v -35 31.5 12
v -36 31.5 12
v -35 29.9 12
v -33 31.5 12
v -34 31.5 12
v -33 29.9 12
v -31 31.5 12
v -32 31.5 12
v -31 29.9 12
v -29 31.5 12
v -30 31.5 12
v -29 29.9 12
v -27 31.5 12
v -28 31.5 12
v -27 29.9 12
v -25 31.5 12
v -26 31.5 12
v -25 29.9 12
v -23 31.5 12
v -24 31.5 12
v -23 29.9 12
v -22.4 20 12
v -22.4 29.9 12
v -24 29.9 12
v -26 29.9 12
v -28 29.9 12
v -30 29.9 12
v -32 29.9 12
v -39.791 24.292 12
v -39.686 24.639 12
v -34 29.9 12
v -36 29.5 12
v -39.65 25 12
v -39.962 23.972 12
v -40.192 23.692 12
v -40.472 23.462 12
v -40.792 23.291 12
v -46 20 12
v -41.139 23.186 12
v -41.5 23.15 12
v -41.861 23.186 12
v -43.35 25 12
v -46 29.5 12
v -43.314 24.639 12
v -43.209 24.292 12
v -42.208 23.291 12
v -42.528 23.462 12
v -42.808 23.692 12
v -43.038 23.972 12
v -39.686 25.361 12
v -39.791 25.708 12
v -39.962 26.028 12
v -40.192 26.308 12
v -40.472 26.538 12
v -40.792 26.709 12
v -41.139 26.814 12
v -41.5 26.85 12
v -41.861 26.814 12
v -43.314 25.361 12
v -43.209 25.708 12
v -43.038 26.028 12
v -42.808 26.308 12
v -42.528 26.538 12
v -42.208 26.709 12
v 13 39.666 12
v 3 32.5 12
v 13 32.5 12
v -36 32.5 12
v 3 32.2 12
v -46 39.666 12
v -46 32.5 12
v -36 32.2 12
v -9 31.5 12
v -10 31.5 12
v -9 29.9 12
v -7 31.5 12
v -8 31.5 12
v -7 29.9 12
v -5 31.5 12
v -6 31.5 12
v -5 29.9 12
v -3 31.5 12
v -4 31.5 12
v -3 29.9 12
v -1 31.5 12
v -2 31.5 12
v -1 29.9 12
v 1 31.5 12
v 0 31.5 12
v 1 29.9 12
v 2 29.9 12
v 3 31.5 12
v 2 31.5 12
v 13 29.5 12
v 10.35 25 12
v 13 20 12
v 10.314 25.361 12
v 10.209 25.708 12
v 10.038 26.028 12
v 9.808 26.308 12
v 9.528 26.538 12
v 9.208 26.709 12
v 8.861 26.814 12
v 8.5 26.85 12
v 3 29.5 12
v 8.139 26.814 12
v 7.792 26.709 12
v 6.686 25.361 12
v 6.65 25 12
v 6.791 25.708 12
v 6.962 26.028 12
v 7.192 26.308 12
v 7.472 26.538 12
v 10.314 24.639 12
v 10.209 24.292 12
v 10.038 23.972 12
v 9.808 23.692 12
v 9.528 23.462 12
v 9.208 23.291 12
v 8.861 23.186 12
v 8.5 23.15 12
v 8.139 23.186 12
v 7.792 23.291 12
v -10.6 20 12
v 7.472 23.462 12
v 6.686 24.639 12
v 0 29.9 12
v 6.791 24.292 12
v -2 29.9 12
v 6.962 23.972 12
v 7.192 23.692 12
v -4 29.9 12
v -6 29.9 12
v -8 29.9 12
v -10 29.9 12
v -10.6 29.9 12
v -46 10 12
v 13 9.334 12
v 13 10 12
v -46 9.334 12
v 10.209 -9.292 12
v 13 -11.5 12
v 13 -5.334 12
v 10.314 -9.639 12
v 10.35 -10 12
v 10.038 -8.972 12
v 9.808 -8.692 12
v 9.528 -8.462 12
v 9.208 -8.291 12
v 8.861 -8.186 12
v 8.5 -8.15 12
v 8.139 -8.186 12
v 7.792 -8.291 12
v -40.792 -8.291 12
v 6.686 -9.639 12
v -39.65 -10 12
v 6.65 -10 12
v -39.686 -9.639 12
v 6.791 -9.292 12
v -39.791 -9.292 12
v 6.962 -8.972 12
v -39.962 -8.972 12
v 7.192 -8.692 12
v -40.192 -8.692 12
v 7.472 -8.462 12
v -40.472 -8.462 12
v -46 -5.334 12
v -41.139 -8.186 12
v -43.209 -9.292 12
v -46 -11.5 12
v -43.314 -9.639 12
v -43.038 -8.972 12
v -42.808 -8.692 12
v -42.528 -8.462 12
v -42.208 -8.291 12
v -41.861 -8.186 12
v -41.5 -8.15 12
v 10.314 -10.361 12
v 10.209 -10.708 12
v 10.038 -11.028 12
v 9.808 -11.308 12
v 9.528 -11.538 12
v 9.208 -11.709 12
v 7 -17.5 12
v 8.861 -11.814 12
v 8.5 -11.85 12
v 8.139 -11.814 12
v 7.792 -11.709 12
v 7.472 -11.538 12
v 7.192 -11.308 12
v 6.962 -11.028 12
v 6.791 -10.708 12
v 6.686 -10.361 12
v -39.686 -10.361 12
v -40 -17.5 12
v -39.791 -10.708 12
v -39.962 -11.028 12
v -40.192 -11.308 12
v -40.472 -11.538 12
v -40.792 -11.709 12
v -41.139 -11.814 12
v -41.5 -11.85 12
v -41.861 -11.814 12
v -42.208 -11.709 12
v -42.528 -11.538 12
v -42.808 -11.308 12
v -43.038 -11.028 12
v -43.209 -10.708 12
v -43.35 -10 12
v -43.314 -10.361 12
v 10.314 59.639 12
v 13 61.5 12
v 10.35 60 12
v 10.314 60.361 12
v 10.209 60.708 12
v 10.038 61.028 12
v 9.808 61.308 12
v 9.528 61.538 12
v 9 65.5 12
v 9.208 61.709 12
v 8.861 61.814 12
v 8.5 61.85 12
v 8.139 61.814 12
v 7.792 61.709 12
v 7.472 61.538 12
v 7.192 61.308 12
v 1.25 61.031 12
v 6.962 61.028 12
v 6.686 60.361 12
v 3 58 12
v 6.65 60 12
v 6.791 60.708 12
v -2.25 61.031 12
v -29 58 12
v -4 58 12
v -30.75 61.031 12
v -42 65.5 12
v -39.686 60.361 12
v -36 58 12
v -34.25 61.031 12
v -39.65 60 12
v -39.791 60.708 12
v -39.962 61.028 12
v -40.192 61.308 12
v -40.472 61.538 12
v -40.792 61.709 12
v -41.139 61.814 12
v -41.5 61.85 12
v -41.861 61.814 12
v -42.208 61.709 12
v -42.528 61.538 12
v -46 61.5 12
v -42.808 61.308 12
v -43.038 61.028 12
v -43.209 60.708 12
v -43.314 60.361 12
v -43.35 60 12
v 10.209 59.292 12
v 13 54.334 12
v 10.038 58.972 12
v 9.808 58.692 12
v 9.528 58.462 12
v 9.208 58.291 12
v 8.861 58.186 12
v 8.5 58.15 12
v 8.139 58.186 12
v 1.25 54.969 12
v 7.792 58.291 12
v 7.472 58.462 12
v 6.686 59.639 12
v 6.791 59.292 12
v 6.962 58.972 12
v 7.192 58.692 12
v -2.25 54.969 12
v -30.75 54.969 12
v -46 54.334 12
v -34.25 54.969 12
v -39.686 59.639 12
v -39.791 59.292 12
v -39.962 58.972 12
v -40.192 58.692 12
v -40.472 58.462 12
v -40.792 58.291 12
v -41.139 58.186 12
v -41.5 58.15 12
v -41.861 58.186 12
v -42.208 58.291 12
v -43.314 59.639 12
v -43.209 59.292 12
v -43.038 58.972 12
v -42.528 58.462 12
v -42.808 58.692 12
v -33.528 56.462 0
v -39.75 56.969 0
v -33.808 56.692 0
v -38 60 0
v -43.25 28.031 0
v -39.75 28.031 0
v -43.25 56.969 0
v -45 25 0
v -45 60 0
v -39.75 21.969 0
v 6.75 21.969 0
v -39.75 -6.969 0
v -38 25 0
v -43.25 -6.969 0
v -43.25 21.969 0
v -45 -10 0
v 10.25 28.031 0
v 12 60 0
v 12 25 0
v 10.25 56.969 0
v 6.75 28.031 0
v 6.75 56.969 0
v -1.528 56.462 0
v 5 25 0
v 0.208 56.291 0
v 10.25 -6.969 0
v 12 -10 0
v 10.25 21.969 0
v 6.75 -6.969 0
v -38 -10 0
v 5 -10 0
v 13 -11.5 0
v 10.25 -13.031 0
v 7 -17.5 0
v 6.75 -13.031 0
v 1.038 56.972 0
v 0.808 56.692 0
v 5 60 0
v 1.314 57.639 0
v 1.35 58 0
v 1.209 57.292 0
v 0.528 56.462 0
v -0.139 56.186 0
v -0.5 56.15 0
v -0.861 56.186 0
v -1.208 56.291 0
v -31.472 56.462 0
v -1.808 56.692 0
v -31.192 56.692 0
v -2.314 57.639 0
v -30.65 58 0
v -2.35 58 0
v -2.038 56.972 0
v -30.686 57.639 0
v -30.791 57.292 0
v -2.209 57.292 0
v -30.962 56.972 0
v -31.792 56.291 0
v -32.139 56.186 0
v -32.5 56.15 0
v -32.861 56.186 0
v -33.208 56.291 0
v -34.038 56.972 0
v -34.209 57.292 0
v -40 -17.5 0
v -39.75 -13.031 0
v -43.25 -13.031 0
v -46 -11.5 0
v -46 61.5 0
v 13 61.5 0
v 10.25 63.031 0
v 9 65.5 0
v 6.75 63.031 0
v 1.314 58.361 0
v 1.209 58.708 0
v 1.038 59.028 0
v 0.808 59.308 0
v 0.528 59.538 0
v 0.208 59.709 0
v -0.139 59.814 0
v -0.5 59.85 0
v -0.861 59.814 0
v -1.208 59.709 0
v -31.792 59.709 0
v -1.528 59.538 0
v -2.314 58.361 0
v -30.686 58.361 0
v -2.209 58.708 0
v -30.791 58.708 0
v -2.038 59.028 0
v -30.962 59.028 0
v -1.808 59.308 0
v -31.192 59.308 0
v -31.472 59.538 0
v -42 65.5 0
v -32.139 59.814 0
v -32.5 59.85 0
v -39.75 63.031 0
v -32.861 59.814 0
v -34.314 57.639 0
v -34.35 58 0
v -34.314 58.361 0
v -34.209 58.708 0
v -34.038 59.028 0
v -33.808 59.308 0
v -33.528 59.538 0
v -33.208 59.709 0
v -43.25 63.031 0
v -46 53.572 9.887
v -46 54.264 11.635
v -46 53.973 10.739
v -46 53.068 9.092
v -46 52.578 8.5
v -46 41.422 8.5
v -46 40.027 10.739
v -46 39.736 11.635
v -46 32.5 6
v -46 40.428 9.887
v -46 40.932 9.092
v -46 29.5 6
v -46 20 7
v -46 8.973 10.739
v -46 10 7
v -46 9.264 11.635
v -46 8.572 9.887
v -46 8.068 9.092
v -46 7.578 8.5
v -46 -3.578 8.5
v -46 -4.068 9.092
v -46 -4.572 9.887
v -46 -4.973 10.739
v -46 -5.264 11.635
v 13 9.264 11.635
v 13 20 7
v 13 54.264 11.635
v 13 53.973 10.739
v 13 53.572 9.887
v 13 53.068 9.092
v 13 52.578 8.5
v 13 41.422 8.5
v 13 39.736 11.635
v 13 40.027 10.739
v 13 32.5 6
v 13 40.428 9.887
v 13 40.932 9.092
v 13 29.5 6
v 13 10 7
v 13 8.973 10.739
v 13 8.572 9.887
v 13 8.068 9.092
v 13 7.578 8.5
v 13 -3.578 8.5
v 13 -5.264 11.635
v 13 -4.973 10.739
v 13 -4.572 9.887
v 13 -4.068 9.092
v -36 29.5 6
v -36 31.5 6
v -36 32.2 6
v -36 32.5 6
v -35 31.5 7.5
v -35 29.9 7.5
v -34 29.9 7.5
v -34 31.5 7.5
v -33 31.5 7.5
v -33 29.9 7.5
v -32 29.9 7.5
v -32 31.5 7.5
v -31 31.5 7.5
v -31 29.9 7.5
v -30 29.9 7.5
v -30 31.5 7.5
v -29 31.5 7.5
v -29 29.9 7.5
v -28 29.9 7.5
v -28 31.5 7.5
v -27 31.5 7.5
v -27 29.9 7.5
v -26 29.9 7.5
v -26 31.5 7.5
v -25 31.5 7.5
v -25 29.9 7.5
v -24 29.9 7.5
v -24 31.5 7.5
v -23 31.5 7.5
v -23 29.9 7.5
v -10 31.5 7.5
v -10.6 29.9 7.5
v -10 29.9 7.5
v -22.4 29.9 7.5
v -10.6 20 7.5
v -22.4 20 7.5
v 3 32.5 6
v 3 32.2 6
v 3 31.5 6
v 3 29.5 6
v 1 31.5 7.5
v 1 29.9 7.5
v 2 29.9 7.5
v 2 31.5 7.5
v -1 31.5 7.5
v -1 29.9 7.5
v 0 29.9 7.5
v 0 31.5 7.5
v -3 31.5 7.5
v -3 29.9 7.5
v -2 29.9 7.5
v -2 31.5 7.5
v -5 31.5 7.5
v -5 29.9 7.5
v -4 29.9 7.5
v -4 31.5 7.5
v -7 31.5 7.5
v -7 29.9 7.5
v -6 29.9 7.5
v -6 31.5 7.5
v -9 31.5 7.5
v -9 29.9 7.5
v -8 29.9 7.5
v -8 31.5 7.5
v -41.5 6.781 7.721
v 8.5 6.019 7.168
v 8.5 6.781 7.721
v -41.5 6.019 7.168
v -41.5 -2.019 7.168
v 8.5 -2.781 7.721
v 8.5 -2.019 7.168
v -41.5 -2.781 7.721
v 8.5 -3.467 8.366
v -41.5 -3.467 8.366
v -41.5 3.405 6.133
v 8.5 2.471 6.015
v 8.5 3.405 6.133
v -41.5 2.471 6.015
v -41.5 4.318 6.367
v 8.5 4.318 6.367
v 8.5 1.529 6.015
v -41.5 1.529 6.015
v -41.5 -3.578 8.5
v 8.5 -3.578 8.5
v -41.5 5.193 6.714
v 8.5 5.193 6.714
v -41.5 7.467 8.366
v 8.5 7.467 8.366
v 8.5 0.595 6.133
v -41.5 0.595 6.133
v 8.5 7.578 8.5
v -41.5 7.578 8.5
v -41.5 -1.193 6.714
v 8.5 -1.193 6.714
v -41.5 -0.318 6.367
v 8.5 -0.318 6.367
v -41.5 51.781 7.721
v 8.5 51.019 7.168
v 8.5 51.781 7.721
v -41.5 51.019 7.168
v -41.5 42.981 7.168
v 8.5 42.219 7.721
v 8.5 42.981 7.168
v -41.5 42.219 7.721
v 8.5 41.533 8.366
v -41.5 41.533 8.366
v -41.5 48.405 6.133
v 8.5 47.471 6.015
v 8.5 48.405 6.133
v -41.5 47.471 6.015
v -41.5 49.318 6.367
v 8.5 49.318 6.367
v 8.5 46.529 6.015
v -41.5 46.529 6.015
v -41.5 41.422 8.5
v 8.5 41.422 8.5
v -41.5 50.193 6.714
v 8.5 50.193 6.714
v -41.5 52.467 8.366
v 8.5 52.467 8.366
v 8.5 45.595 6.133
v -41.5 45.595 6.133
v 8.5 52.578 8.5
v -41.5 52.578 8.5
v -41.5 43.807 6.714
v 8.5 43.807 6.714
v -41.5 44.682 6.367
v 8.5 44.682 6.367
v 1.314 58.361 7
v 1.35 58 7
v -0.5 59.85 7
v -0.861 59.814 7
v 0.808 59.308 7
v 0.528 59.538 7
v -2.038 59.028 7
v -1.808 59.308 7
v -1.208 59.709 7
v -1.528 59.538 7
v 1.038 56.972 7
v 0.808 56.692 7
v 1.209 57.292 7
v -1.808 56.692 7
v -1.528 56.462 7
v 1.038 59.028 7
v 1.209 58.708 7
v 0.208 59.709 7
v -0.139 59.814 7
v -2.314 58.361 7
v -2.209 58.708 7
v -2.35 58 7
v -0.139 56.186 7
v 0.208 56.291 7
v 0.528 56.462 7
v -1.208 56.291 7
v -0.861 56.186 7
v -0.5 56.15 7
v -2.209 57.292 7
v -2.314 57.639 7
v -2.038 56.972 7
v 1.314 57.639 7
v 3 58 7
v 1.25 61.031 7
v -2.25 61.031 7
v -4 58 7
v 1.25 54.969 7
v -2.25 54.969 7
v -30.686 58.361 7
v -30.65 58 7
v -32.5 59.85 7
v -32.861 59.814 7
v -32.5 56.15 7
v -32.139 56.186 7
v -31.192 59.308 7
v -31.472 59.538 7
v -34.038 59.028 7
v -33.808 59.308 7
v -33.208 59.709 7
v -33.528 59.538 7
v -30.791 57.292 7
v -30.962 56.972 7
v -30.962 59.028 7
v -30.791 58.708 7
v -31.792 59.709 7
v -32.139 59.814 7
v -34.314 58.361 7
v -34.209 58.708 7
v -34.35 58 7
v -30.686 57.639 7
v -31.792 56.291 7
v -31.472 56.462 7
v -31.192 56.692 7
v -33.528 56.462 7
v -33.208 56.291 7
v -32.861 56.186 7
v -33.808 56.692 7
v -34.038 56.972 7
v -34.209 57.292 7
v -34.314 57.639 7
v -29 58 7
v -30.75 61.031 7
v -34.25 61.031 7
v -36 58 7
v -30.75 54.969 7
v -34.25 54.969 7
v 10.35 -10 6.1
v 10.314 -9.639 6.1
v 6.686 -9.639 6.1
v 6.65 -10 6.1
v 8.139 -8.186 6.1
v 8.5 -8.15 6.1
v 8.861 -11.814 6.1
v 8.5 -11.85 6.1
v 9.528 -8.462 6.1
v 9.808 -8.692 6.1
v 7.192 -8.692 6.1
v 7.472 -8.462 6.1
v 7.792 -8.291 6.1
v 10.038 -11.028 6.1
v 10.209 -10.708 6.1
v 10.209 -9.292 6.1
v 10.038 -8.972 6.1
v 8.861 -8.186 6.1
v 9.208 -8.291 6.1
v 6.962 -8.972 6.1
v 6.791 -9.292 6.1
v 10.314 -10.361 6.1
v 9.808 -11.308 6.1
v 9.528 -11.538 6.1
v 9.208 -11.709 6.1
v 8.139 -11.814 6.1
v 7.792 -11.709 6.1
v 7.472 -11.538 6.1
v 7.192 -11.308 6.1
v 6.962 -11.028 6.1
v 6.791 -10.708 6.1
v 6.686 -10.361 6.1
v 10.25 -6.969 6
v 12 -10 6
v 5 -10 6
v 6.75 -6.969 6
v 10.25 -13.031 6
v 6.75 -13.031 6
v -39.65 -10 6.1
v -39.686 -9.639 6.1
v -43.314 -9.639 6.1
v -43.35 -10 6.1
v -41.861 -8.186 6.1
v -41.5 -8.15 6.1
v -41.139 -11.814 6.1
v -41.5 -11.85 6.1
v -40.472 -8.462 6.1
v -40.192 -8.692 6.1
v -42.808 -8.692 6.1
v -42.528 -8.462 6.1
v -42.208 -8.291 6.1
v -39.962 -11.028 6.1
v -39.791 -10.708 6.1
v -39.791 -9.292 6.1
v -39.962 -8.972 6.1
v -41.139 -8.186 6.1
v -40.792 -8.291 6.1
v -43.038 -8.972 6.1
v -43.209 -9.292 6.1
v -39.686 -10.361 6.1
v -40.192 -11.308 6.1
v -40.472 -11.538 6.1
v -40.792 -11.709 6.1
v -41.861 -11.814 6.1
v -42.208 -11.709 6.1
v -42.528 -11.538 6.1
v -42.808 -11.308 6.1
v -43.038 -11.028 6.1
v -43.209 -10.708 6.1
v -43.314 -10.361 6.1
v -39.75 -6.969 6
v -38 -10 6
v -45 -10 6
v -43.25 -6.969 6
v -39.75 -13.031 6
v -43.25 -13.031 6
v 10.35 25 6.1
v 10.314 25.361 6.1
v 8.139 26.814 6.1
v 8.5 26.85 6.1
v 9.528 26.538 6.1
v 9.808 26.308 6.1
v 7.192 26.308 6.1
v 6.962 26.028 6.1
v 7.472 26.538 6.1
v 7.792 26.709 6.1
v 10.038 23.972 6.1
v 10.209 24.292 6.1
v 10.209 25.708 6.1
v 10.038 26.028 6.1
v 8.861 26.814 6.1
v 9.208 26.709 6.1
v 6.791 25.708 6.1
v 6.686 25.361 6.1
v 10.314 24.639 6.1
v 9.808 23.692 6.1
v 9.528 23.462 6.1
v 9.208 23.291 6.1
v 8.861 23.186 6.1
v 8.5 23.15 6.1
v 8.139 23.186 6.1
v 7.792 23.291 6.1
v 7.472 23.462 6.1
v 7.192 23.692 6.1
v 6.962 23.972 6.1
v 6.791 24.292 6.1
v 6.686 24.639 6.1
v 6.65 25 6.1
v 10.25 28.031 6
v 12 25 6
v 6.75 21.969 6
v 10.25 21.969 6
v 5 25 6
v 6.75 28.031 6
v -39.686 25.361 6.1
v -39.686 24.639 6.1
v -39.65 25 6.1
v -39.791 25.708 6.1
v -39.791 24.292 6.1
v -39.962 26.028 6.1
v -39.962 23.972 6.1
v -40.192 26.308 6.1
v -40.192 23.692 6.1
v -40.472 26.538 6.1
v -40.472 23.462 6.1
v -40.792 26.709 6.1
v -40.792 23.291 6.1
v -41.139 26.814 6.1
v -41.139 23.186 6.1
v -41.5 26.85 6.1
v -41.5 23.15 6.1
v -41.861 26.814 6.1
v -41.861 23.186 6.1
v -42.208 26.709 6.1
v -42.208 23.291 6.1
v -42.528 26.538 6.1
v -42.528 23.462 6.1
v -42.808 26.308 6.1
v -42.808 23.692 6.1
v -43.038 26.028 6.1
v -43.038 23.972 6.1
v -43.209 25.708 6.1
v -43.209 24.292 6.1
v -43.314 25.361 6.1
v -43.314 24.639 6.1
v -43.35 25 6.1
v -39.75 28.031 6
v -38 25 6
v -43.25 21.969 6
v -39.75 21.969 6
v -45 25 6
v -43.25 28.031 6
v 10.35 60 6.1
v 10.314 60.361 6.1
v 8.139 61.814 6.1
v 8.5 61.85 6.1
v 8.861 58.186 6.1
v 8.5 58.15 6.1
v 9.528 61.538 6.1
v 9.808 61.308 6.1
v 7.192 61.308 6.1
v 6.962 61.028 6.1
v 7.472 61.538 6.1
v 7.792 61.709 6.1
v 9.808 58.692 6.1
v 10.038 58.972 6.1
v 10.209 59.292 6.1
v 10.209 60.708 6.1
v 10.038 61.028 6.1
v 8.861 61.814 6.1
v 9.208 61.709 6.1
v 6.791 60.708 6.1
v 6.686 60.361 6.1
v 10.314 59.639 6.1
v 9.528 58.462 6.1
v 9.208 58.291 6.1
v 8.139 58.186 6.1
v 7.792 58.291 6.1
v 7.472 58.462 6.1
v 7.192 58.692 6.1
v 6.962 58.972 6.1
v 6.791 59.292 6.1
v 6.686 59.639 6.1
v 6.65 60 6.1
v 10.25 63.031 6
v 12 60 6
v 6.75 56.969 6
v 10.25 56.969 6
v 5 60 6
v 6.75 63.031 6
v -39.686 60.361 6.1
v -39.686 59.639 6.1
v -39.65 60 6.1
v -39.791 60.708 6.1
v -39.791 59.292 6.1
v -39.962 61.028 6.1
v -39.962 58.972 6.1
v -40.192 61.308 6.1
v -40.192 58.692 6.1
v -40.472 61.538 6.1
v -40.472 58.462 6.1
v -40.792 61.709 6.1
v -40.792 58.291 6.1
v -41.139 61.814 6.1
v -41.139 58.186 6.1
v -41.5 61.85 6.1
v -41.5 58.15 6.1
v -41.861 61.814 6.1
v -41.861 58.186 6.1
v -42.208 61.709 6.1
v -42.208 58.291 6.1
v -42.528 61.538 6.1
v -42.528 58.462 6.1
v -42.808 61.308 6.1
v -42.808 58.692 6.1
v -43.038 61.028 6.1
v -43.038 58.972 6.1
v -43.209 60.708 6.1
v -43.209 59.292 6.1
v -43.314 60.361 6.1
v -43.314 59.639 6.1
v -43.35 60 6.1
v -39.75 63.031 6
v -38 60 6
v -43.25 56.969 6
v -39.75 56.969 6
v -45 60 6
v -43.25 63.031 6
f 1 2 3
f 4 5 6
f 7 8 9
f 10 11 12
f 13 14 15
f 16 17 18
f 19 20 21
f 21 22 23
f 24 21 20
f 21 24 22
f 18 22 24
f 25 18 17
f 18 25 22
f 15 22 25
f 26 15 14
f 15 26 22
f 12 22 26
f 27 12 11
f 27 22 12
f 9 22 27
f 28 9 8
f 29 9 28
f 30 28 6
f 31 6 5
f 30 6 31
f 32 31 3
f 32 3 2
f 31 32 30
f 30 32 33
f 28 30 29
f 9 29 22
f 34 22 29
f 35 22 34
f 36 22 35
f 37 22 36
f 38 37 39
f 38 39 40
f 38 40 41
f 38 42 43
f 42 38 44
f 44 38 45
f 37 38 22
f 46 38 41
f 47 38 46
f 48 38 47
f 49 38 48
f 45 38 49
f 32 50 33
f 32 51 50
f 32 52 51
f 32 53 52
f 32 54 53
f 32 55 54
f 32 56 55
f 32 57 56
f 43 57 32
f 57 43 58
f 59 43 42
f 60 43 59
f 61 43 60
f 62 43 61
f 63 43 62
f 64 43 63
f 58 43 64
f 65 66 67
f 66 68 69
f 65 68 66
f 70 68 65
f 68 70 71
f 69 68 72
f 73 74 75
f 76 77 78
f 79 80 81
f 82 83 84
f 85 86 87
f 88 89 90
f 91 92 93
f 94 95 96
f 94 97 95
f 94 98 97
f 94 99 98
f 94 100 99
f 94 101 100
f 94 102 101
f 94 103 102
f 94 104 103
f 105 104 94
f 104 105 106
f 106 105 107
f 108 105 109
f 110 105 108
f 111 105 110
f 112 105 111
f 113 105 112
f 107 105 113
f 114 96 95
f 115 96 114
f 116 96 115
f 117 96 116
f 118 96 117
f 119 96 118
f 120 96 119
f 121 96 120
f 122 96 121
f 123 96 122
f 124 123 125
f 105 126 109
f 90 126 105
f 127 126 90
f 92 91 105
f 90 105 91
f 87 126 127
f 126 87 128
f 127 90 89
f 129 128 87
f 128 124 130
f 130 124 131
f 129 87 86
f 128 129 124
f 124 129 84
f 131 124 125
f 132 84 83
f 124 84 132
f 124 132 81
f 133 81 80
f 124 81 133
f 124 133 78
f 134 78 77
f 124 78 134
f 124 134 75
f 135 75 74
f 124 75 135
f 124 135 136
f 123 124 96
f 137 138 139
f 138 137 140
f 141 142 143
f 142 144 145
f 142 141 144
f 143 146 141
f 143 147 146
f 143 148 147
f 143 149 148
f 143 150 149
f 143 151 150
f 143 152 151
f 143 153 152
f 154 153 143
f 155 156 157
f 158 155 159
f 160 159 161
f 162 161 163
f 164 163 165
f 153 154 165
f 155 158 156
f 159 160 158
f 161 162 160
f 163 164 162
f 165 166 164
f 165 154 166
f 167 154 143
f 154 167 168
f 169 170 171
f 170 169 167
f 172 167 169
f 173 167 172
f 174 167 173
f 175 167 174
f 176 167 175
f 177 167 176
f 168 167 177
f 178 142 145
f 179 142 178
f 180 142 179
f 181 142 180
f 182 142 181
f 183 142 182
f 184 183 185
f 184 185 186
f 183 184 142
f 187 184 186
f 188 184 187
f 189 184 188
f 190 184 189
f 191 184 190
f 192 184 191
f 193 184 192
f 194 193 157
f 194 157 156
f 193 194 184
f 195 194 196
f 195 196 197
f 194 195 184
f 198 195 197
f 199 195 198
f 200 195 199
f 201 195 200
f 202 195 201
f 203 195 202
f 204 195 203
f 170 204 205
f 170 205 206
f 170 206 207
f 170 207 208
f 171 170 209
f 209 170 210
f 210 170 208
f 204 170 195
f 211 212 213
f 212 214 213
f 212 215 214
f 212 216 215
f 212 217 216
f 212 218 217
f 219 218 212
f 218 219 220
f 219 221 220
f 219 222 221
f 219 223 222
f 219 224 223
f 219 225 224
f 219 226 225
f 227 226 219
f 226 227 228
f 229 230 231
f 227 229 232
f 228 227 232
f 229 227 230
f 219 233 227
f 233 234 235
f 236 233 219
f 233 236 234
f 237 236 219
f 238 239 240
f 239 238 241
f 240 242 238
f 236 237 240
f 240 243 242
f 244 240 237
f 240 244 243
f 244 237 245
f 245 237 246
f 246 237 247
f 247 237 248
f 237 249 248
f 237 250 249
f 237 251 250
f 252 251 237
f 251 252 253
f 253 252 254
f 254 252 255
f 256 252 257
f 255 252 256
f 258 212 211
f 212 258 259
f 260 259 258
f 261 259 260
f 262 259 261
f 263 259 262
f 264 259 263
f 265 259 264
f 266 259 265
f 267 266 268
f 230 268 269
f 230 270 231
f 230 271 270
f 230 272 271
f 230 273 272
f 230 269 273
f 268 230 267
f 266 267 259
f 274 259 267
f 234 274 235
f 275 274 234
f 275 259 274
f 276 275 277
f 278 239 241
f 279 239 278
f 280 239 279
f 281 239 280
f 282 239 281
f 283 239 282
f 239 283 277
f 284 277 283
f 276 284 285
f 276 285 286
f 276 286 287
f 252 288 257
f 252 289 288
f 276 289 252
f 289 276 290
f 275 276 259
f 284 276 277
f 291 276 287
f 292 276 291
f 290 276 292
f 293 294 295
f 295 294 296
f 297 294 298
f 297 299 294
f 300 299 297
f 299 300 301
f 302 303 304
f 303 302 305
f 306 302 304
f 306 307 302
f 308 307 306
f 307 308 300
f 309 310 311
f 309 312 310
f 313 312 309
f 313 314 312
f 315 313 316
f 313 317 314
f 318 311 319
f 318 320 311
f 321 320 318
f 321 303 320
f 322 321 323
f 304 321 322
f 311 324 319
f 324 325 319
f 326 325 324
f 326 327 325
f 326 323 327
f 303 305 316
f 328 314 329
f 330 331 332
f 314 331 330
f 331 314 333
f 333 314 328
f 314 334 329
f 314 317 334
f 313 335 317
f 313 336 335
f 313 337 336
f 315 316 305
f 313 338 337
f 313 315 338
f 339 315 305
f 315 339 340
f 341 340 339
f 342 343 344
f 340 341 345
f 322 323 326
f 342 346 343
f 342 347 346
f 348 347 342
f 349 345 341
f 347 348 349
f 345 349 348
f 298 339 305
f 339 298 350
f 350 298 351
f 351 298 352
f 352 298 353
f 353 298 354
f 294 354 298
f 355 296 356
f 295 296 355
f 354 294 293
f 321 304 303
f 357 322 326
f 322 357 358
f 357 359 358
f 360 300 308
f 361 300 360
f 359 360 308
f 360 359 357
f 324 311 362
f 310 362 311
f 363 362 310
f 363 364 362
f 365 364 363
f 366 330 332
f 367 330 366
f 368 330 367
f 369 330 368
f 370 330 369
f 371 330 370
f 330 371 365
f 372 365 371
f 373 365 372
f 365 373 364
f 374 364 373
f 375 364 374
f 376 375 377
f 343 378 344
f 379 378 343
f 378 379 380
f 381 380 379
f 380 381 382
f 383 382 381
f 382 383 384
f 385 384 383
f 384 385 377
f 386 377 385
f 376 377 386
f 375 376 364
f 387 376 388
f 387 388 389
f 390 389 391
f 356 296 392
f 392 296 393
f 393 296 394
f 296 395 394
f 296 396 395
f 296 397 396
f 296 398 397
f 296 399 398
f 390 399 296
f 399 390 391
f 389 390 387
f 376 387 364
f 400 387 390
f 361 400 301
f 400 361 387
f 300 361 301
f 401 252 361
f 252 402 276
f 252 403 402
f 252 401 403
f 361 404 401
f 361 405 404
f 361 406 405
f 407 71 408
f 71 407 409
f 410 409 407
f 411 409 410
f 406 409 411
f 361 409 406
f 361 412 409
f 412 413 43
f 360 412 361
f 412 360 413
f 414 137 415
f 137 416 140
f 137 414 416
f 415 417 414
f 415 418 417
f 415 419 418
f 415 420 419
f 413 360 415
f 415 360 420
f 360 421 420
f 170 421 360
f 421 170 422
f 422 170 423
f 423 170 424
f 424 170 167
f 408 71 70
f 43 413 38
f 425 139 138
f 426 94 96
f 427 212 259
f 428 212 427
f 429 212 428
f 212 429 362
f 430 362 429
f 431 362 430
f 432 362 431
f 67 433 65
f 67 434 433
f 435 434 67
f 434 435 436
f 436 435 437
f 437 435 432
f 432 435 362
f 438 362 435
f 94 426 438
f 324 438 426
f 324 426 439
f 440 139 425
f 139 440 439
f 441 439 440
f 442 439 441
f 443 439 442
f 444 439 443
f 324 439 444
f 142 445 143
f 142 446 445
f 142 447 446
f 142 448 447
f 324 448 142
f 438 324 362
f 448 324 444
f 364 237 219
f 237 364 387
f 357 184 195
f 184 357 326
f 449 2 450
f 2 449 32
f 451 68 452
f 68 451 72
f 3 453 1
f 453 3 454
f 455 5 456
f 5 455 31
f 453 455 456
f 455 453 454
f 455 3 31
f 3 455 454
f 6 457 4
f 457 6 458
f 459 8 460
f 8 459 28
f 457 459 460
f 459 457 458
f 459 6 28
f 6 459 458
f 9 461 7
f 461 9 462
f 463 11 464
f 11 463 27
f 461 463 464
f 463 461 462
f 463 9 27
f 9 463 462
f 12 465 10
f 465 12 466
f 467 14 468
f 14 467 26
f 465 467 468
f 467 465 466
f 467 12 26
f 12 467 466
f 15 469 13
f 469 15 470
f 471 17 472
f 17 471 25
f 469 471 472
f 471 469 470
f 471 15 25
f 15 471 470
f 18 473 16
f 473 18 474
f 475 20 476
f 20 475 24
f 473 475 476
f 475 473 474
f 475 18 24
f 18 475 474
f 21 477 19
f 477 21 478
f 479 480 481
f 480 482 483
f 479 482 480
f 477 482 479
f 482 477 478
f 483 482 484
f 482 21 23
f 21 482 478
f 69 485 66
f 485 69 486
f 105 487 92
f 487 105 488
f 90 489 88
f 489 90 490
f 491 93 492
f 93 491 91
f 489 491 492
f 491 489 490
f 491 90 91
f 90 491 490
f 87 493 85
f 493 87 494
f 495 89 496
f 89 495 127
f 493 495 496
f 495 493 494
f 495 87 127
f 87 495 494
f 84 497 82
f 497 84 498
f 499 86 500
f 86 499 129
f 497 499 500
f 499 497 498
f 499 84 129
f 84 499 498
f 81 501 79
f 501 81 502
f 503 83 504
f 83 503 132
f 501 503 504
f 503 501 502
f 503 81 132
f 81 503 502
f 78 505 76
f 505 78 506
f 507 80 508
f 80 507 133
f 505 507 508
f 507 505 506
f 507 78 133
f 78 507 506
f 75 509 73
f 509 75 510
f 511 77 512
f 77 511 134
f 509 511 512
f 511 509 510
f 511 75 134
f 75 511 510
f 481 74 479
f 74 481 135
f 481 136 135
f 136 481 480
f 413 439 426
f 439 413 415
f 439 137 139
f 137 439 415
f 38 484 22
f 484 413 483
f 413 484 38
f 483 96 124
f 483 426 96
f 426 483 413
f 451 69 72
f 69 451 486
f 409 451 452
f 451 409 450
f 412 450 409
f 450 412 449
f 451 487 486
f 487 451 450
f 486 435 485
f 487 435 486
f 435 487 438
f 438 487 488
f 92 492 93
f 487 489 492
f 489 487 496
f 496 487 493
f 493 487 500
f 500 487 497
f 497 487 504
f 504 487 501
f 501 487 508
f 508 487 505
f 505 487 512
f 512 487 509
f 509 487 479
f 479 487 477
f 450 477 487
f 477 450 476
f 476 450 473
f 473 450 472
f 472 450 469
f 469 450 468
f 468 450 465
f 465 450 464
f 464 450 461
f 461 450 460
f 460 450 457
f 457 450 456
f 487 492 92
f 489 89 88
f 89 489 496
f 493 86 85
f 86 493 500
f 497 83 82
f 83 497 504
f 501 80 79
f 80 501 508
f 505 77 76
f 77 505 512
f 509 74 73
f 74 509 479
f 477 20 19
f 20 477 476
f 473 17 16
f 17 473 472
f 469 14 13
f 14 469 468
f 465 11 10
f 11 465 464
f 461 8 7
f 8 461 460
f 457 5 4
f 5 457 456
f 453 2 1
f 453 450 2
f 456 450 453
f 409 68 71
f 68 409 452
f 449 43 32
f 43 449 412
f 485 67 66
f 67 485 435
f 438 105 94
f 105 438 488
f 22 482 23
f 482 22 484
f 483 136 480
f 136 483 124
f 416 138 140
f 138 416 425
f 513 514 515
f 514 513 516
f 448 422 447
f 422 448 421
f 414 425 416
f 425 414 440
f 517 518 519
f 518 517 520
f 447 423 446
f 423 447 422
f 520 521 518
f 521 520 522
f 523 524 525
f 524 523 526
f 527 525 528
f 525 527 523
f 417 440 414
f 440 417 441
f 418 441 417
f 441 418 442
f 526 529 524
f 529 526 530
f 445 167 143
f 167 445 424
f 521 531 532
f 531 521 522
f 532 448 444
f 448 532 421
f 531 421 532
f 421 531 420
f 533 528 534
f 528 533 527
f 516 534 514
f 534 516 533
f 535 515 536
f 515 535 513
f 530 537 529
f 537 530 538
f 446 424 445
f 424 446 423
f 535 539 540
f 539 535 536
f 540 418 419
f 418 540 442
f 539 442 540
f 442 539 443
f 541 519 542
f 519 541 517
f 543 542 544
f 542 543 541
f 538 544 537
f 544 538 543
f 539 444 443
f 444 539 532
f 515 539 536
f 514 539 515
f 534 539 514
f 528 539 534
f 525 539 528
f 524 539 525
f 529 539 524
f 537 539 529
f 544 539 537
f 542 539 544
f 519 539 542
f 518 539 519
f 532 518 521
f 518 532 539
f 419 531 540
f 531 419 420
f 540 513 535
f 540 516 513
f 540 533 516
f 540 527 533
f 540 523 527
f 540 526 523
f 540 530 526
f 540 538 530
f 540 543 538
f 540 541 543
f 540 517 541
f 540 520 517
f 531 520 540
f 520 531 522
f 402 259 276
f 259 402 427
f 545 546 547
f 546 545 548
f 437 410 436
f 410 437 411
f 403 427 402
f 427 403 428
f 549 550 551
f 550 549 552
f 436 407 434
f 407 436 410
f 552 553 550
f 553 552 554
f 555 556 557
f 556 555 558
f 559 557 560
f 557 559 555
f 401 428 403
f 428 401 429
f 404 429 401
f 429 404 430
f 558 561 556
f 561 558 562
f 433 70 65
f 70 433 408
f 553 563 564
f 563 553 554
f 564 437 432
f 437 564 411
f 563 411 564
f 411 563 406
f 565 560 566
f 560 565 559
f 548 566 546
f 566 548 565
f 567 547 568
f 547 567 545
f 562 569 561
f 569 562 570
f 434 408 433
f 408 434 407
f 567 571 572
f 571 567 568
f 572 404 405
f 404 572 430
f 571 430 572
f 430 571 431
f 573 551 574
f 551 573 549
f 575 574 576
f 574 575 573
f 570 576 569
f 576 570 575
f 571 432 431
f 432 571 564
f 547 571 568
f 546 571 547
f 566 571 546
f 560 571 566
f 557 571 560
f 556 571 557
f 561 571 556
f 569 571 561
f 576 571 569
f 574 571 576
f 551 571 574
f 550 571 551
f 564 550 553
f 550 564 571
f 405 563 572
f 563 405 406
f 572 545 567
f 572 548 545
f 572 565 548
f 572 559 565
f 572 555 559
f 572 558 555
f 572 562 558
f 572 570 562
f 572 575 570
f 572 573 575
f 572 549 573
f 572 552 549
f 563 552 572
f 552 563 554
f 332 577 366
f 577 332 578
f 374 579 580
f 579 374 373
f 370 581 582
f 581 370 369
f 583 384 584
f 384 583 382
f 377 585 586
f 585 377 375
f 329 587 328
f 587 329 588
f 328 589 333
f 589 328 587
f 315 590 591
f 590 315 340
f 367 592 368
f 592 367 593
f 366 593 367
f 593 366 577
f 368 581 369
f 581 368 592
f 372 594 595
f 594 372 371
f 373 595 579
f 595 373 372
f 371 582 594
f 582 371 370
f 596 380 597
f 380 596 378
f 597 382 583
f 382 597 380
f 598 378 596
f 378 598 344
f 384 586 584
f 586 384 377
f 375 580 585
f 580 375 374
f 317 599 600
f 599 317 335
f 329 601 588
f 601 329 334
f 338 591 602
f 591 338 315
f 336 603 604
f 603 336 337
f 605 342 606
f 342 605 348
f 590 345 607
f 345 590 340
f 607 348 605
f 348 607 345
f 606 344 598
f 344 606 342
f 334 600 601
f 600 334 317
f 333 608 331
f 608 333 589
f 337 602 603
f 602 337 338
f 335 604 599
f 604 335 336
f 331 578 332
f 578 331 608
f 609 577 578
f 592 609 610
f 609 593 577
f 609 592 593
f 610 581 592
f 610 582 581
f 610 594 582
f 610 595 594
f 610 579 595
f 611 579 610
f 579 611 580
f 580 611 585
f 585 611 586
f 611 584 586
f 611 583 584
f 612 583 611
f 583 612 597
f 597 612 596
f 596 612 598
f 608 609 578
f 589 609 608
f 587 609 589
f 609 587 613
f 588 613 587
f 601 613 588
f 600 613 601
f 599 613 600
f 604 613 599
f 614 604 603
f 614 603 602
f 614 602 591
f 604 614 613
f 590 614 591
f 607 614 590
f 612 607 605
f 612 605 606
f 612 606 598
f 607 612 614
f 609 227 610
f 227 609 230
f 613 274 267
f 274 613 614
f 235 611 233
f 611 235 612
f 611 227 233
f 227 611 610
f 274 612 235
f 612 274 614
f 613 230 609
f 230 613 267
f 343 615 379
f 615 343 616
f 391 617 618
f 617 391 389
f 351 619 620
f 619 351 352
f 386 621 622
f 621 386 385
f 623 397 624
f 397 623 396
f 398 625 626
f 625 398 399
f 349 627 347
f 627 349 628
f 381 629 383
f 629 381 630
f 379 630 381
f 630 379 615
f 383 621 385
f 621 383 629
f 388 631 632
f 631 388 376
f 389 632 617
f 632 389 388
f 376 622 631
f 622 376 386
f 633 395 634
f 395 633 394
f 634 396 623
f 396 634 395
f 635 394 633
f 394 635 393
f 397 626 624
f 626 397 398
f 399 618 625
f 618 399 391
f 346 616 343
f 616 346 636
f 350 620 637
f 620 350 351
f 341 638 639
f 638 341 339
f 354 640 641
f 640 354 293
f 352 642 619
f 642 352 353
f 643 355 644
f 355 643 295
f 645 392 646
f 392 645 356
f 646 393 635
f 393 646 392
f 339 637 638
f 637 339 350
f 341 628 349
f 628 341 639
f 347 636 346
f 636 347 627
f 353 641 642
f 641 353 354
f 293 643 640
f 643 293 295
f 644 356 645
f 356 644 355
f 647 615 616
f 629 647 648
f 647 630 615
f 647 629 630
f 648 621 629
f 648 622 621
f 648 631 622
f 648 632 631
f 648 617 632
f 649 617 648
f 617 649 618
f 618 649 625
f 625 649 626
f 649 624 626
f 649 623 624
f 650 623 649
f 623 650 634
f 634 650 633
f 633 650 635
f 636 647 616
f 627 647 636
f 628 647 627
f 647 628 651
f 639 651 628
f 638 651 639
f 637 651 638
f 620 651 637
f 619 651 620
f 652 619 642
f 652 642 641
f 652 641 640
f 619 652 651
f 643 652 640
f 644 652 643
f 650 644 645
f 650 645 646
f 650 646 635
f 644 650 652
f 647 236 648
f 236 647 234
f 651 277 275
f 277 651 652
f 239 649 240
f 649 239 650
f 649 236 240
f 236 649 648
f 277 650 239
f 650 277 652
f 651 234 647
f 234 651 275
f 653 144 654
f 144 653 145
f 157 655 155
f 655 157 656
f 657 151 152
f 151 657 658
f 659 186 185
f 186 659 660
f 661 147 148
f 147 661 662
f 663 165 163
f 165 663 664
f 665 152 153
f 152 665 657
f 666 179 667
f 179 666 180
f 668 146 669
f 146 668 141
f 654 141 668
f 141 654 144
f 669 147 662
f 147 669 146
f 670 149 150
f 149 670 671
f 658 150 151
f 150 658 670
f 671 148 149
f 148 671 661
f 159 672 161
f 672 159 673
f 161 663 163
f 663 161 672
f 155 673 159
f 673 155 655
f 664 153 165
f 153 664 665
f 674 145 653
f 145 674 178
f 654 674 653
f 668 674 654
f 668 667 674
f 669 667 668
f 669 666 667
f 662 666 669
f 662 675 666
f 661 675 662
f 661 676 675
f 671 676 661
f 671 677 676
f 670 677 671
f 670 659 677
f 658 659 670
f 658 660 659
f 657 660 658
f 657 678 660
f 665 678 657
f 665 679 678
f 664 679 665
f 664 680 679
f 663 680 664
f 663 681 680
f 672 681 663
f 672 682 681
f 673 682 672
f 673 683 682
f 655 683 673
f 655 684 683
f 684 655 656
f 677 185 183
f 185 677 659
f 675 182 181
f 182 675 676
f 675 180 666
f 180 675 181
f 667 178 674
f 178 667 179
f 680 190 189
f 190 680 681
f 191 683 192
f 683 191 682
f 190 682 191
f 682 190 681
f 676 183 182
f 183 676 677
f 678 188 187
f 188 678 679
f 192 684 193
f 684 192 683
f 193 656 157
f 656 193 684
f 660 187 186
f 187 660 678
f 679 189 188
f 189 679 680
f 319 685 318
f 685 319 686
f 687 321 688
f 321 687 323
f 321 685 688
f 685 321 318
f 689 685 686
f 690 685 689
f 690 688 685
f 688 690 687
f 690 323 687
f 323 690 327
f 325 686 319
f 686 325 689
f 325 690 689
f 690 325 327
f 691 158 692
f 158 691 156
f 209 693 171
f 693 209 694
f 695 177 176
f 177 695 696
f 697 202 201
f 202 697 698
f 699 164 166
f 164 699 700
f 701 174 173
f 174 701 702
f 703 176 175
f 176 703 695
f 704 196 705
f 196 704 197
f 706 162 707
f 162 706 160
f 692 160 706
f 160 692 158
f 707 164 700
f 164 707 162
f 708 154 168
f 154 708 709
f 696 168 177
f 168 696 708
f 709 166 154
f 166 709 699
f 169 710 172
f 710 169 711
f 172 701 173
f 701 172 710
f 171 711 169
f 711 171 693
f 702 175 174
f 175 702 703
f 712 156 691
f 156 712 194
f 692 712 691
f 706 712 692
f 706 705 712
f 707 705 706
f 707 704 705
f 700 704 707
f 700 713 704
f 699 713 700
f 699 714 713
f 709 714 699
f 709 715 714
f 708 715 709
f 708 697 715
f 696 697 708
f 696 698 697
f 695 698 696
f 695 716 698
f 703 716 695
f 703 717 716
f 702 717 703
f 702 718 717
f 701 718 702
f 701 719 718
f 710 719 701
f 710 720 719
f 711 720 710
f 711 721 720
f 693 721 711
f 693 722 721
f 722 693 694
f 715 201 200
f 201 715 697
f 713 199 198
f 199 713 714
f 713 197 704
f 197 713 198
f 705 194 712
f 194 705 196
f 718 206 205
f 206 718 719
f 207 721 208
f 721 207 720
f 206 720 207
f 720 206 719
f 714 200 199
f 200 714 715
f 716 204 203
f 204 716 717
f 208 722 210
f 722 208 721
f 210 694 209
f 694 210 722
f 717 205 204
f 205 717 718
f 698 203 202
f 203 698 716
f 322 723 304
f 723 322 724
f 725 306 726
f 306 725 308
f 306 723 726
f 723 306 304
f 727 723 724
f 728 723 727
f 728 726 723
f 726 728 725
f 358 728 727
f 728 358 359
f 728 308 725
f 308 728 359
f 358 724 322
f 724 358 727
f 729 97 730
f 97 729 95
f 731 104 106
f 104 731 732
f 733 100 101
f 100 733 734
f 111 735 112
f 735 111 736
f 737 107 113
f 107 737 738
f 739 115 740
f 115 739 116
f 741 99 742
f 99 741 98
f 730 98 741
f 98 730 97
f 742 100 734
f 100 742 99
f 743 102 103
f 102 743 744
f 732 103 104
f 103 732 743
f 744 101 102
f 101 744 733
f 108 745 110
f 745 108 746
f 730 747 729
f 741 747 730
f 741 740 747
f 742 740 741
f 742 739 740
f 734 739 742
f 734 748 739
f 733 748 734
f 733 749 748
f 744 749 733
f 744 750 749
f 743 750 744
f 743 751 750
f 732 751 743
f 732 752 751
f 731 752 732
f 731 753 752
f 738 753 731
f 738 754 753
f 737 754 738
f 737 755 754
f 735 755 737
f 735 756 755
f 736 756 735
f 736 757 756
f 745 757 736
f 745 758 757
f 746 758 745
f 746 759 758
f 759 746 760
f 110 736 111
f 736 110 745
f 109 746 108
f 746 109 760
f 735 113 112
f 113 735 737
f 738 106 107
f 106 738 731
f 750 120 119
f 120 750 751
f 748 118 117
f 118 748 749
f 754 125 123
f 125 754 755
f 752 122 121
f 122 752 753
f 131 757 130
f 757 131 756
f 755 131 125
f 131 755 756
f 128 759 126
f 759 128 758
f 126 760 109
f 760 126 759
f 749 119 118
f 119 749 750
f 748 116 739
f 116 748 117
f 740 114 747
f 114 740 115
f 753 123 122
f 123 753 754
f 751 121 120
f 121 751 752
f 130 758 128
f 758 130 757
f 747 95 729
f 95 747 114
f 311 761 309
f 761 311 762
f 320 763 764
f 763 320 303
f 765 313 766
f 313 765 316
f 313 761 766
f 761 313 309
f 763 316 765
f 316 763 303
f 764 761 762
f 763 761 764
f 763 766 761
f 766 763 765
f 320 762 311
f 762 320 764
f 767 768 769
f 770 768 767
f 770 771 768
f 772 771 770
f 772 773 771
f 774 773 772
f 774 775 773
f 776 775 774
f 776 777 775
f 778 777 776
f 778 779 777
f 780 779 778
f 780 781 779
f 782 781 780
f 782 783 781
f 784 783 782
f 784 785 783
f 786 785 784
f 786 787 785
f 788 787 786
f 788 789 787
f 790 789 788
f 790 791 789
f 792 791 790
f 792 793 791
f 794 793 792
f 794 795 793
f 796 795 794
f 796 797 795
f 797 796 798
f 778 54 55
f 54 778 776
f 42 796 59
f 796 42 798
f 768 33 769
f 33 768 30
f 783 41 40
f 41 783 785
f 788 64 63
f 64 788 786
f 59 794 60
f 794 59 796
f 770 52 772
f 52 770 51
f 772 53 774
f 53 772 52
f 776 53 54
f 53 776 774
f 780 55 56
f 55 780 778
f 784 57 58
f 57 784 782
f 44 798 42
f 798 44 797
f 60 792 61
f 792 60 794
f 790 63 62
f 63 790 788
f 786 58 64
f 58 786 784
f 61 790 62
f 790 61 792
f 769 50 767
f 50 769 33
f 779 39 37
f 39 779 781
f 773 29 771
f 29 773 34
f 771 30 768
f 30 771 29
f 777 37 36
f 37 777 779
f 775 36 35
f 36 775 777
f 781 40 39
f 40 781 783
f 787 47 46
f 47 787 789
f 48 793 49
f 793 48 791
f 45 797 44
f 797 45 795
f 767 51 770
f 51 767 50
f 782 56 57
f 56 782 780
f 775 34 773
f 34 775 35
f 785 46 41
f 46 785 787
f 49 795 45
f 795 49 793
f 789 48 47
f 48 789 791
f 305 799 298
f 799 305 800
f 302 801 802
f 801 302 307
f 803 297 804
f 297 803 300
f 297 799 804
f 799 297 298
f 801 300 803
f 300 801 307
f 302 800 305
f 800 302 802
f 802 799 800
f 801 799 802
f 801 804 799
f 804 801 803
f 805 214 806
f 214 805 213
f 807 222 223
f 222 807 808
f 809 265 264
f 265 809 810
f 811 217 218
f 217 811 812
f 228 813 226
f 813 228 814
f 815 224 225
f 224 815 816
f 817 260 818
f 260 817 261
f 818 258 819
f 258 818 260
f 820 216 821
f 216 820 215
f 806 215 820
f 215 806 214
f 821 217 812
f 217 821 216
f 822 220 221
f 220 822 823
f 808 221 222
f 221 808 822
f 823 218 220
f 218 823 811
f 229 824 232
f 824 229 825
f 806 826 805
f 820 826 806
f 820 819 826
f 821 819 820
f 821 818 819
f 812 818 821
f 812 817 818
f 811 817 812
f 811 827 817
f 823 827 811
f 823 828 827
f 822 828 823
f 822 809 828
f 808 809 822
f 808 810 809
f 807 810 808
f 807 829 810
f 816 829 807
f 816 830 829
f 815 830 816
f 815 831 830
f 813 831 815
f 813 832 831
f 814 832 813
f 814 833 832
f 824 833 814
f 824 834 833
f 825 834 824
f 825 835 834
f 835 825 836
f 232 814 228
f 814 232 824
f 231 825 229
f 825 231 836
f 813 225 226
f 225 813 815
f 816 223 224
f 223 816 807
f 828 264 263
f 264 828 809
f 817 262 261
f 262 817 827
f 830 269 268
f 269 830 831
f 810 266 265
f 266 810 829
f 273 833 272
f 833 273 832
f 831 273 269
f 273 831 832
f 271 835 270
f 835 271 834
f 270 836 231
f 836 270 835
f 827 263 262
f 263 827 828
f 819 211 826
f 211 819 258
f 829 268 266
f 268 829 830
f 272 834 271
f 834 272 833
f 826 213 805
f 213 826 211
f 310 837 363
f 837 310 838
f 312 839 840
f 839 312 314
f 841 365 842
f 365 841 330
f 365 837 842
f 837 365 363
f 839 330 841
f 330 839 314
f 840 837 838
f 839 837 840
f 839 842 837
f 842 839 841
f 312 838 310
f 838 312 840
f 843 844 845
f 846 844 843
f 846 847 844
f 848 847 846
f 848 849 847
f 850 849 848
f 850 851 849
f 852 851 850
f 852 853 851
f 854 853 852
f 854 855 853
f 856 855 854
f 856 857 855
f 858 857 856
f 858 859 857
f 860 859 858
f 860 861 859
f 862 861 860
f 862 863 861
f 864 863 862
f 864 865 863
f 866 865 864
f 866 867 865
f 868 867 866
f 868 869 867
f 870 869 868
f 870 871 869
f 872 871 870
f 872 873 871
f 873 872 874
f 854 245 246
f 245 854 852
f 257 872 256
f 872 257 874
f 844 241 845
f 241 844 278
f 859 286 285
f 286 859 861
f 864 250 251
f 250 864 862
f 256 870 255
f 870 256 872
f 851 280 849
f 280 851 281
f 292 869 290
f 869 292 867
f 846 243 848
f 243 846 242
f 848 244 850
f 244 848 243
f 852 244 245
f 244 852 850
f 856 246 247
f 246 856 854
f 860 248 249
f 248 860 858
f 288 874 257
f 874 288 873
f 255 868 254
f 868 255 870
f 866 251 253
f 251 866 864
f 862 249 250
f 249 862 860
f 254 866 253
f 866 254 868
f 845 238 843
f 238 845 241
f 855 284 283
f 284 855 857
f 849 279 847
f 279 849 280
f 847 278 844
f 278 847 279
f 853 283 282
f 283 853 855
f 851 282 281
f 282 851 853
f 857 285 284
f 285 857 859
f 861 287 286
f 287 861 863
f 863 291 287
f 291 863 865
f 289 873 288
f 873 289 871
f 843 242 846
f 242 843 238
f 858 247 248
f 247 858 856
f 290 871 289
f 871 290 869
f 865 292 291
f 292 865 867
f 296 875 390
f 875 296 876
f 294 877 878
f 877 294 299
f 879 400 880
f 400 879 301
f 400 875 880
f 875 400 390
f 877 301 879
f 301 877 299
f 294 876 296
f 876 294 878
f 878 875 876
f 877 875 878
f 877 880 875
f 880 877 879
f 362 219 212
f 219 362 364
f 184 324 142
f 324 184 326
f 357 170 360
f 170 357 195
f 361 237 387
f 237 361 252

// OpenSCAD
// file: inc/bearing.scad
// PRUSA iteration3
// Bearing holders
// GNU GPL v3
// Josef Průša <iam@josefprusa.cz> and contributors
// http://www.reprap.org/wiki/Prusa_Mendel
// http://prusamendel.org

bearing_diameter = 15;

module horizontal_bearing_base(bearings=1){
 translate(v=[0,0,6]) cube(size = [24,8+bearings*25,12], center = true);
}
module horizontal_bearing_holes(bearings=1, ziptie = 2){
 cutter_lenght = 10+bearings*25;
 one_holder_lenght = 8+25;
 holder_lenght = 8+bearings*25;

 // Main bearing cut
 difference(){
  translate(v=[0,0,12+1.5]) rotate(a=[90,0,0]) translate(v=[0,0,-cutter_lenght/2]) cylinder(h = cutter_lenght, r=bearing_diameter/2, $fn=50);
  // Bearing retainers
  translate(v=[0,1-holder_lenght/2,3+1.5]) cube(size = [24,6,8], center = true);
  translate(v=[0,-1+holder_lenght/2,3+1.5]) cube(size = [24,6,8], center = true);
 }

 // Ziptie cutouts
 if (ziptie > 0) {
 ziptie_cut_ofset = 1;
 for ( i = [0 : bearings-1] ){
  // For easier positioning I move them by half of one
  // bearing holder then add each bearign lenght and then center again
  translate(v=[0,-holder_lenght/2,0]) translate(v=[0,one_holder_lenght/2+i*25,0]) difference(){
      union(){
            for (z = [1:ziptie]){
                translate(v=[0,(25/(ziptie+1))*(z)+z-25/2,12]) rotate(a=[90,0,0]) cylinder(h = 4, r=12.5, $fn=50);
            }
    //translate(v=[0,2-6,12]) rotate(a=[90,0,0]) translate(v=[0,0,0]) cylinder(h = 4, r=12.5, $fn=50);
    //translate(v=[0,2+6,12]) rotate(a=[90,0,0]) translate(v=[0,0,0]) cylinder(h = 4, r=12.5, $fn=50);
    }
   translate(v=[0,10,12]) rotate(a=[90,0,0]) translate(v=[0,0,0]) cylinder(h = 24, r=10, $fn=50);
  }
}
 }

}

module horizontal_bearing_test(){
 difference(){
  horizontal_bearing_base(1);
  horizontal_bearing_holes(1);
 }
 translate(v=[30,0,0]) difference(){
  horizontal_bearing_base(2);
  horizontal_bearing_holes(2);
 }
 translate(v=[60,0,0]) difference(){
  horizontal_bearing_base(3);
  horizontal_bearing_holes(3);
 }
}



thinwall = 3;
bearing_size = bearing_diameter + 2 * thinwall;

module vertical_bearing_base(){
 translate(v=[-2-bearing_size/4,0,29]) cube(size = [4+bearing_size/2,bearing_size,58], center = true);
 cylinder(h = 58, r=bearing_size/2, $fn = 90);
}

module vertical_bearing_holes(){
  translate(v=[0,0,-1]) cylinder(h = 62, r=bearing_diameter/2, $fn = 60);
  rotate(a=[0,0,-30]) translate(v=[8,0,31.5]) cube(size = [5,1,62], center = true);
}

difference(){
vertical_bearing_base();
vertical_bearing_holes();
}
// file: ../configuration.scad
// Layer high for the printing [mm]
layer_height = 0.20; //Slic3r->Print Settings->Layers and perimeters->Layer height

// Spare for the screws heads [mm]
spare = 0.75;
// M6 screw diameter [mm]
M6_head_diameter = 13.6+spare;
//M6_head_diameter = 10.6+spare;
//M6_head_diameter = 12+spare;

// M6 head high (for hiding it) [mm]
//M6_head_height = 4;
M6_head_height = 3.6;
//M6_head_height = 4.5;

// Screws and rods diameters
M8_smooth_rod_diameter = 8.3;
M8_smooth_rod_diameter_catch = 8.4;
// Prumer 8mm tyce
rod_8mm_d = 8.2; //pro dil z-top
M6_diameter = 6.6;
M6_dia=M6_diameter; //pro dil z-top
M6_diamater_horizontal = 6.5;
M3_diameter = 3.7;
M3_diameter_horizontal = 3.5;

//matice trapézové tyče
TRAP_diameter_externa=22; //průmer vnější 


// Nuts diameters
M3_nut_diameter = 7.0;
M3_nut_diameter_horizontal = 6.7;

// ALU profile parameters
ALU_cut_width = 7.9;
ALU_cut_width_horizontal = 7.7;

// Sirka matky do profilu (pokud neni pouzita, tak 0)
//profile_nut_width = 9.5;
profile_nut_width = 0; //pro z-top

// Motors length/depth (for axes Z and Y)
//SX17-1003LQFE (recommended for the Z axis)
motor_length = 29.5;
//SX17-1003 (recommended for the Z axis)
//motor_length = 34;
//SX17-1005
//motor_length = 40;
//SX17-0905 - this motor is too high - the Z end stop holder has to be adjusted
//motor_length = 48;

// Extrusion width [mm]
extrusion_width = 0.66; //Slic3r->Print Settings->Advanced->Default extrusion width

/// Belt type ******************************************************

// GT2 
belt_tooth_distance = 2;
belt_tooth_ratio = 0.5;
belt_tooth_height = 1.4;
belt_thickness = 2.3;

/*
// T2.5
belt_tooth_distance = 2.5;
belt_tooth_ratio = 0.68;
*/
// main file
// PRUSA iteration3
// x carriage
// GNU GPL v3
// Josef Průša <iam@josefprusa.cz> and contributors
// http://www.reprap.org/wiki/Prusa_Mendel
// http://prusamendel.org

include <../configuration.scad>
use <inc/bearing.scad>
x_rod_distance = 45;
fix_teeth_count = 6.8; // Pokud je zde cele cislo je na konci "hrebene" takovy zvlastni artefakt

module x_carriage_base(){
 // Small bearing holder
 hull(){
     translate([-33/2,+2,0]) rotate([0,0,90]) horizontal_bearing_base(2);
     translate([-36,20,0]) cube([39,16,12]);
 }
 hull(){
     // Long bearing holder
     translate([-33/2,x_rod_distance+2,0]) rotate([0,0,90]) horizontal_bearing_base(2);
     // Belt holder base
     translate([-36,20,0]) cube([39,16,12]);
 }
 // Base plate
 translate([-41-5,-11.5-6,0]) cube([49+10,68+6+6+3, 12]);
 //translate([-41-5,-11.5-6,0]) cube([15,68+6+6+3, 12]);
 //translate([-1.5,-11.5-6,0]) cube([15,68+6+6+3, 12]);
}

module x_carriage_beltcut(){
    tooth_size = belt_tooth_ratio*belt_tooth_distance;
    echo(tooth_size);
    // Cut clearing space for the belt
    translate([-50,10,7]) cube([70,10,15]);
    // Belt slit
    translate([-50,31.5,6]) cube([67,0.7,15]);
    // left belt slit inlet
    translate([-46,29.5,6]) cube([10,3,15]);
    // right belt slit inlet
    translate([3,29.5,6]) cube([10,3,15]);
    // Smooth entrance
    translate([-56,21.7+10,16]) rotate([45,0,0]) cube([67,15,15]);
    // Teeth cuts
    for ( i = [0 : fix_teeth_count + 1] ){
        translate([i*belt_tooth_distance-36-tooth_size,21.9+8,7.5]) cube([belt_tooth_ratio*belt_tooth_distance,1.7,15]);
    }

    for ( i = [0 : fix_teeth_count + 1] ){
        translate([-i*belt_tooth_distance+3,21.9+8,6+1.5]) cube([belt_tooth_ratio*belt_tooth_distance,1.7,15]);
    }

    // Middle belt opening
    left_opening_border =-36+fix_teeth_count*belt_tooth_distance;
    right_opening_border =3-fix_teeth_count*belt_tooth_distance-left_opening_border;
    translate([left_opening_border,18,7.5]) cube([right_opening_border,14,15]);
}

module x_carriage_holes(){
 // Small bearing holder holes cutter
  translate([-33/2,2,0]) rotate([0,0,90]) horizontal_bearing_holes(2, 0);
 // Long bearing holder holes cutter
  translate([-33/2,x_rod_distance+2,0]) rotate([0,0,90]) horizontal_bearing_holes(2, 0);
  // Extruder mounting holes
  translate([-16.5+16,58,-1])cylinder(r=M3_diameter/2, h=20, $fn=32);
  translate([-16.5+16,58,7])cylinder(r=M3_nut_diameter/2, h=20, $fn=6);
  translate([-16.5-16,58,-1])cylinder(r=M3_diameter/2, h=20, $fn=32);
  translate([-16.5-16,58,7])cylinder(r=M3_nut_diameter/2, h=20, $fn=6);
  //translate([-16.5+1,24+31+2,-1])cylinder(r=M3_diameter/2, h=20, $fn=32);
  //translate([-16.5+1,24+31+2,7])cylinder(r=M3_nut_diameter/2, h=20, $fn=6);
}

module x_carriage_fancy(){
 // Top right corner
 translate([17, 0,0]) translate([0,45+12.5,-1]) rotate([0,0,45]) translate([0,-15,0]) cube([30,30,20]);
 // Bottom right corner
 translate([17,5,0]) translate([0,-12.5,-1]) rotate([0,0,-45]) translate([0,-15,0]) cube([30,30,20]);
 // Bottom ĺeft corner
 translate([-33-17,5,0]) translate([0,-12.5,-1]) rotate([0,0,-135]) translate([0,-15,0]) cube([30,30,20]);
 // Top left corner
 translate([-33-17,0,0]) translate([0,45+12.5,-1]) rotate([0,0,135]) translate([0,-15,0]) cube([30,30,20]);
}

module x_carriage_mountholes(){
    translate([-16.5, 0, 0]){
        translate([+25,-10, 6.1])cylinder(r=M3_diameter/2, h=20, $fn=32);
        translate([+25,-10, -1])cylinder(r=M3_nut_diameter/2, h=7, $fn=6);

        translate([-25, -10, 6.1])cylinder(r=M3_diameter/2, h=20, $fn=32);
        translate([-25, -10, -1])cylinder(r=M3_nut_diameter/2, h=7, $fn=6);

        translate([+25, 25, 6.1])cylinder(r=M3_diameter/2, h=20, $fn=32);
        translate([+25, 25, -1])cylinder(r=M3_nut_diameter/2, h=7, $fn=6);

        translate([-25, 25, 6.1])cylinder(r=M3_diameter/2, h=20, $fn=32);
        translate([-25, 25, -1])cylinder(r=M3_nut_diameter/2, h=7, $fn=6);

        translate([+25, 60, 6.1])cylinder(r=M3_diameter/2, h=20, $fn=32);
        translate([+25, 60, -1])cylinder(r=M3_nut_diameter/2, h=7, $fn=6);

        translate([-25, 60, 6.1])cylinder(r=M3_diameter/2, h=20, $fn=32);
        translate([-25, 60, -1])cylinder(r=M3_nut_diameter/2, h=7, $fn=6);
    }
}

// Final part
module x_carriage(){
 difference(){
  x_carriage_base();
  x_carriage_beltcut();
  x_carriage_holes();
  x_carriage_mountholes();
  x_carriage_fancy();
 }
}

x_carriage();
